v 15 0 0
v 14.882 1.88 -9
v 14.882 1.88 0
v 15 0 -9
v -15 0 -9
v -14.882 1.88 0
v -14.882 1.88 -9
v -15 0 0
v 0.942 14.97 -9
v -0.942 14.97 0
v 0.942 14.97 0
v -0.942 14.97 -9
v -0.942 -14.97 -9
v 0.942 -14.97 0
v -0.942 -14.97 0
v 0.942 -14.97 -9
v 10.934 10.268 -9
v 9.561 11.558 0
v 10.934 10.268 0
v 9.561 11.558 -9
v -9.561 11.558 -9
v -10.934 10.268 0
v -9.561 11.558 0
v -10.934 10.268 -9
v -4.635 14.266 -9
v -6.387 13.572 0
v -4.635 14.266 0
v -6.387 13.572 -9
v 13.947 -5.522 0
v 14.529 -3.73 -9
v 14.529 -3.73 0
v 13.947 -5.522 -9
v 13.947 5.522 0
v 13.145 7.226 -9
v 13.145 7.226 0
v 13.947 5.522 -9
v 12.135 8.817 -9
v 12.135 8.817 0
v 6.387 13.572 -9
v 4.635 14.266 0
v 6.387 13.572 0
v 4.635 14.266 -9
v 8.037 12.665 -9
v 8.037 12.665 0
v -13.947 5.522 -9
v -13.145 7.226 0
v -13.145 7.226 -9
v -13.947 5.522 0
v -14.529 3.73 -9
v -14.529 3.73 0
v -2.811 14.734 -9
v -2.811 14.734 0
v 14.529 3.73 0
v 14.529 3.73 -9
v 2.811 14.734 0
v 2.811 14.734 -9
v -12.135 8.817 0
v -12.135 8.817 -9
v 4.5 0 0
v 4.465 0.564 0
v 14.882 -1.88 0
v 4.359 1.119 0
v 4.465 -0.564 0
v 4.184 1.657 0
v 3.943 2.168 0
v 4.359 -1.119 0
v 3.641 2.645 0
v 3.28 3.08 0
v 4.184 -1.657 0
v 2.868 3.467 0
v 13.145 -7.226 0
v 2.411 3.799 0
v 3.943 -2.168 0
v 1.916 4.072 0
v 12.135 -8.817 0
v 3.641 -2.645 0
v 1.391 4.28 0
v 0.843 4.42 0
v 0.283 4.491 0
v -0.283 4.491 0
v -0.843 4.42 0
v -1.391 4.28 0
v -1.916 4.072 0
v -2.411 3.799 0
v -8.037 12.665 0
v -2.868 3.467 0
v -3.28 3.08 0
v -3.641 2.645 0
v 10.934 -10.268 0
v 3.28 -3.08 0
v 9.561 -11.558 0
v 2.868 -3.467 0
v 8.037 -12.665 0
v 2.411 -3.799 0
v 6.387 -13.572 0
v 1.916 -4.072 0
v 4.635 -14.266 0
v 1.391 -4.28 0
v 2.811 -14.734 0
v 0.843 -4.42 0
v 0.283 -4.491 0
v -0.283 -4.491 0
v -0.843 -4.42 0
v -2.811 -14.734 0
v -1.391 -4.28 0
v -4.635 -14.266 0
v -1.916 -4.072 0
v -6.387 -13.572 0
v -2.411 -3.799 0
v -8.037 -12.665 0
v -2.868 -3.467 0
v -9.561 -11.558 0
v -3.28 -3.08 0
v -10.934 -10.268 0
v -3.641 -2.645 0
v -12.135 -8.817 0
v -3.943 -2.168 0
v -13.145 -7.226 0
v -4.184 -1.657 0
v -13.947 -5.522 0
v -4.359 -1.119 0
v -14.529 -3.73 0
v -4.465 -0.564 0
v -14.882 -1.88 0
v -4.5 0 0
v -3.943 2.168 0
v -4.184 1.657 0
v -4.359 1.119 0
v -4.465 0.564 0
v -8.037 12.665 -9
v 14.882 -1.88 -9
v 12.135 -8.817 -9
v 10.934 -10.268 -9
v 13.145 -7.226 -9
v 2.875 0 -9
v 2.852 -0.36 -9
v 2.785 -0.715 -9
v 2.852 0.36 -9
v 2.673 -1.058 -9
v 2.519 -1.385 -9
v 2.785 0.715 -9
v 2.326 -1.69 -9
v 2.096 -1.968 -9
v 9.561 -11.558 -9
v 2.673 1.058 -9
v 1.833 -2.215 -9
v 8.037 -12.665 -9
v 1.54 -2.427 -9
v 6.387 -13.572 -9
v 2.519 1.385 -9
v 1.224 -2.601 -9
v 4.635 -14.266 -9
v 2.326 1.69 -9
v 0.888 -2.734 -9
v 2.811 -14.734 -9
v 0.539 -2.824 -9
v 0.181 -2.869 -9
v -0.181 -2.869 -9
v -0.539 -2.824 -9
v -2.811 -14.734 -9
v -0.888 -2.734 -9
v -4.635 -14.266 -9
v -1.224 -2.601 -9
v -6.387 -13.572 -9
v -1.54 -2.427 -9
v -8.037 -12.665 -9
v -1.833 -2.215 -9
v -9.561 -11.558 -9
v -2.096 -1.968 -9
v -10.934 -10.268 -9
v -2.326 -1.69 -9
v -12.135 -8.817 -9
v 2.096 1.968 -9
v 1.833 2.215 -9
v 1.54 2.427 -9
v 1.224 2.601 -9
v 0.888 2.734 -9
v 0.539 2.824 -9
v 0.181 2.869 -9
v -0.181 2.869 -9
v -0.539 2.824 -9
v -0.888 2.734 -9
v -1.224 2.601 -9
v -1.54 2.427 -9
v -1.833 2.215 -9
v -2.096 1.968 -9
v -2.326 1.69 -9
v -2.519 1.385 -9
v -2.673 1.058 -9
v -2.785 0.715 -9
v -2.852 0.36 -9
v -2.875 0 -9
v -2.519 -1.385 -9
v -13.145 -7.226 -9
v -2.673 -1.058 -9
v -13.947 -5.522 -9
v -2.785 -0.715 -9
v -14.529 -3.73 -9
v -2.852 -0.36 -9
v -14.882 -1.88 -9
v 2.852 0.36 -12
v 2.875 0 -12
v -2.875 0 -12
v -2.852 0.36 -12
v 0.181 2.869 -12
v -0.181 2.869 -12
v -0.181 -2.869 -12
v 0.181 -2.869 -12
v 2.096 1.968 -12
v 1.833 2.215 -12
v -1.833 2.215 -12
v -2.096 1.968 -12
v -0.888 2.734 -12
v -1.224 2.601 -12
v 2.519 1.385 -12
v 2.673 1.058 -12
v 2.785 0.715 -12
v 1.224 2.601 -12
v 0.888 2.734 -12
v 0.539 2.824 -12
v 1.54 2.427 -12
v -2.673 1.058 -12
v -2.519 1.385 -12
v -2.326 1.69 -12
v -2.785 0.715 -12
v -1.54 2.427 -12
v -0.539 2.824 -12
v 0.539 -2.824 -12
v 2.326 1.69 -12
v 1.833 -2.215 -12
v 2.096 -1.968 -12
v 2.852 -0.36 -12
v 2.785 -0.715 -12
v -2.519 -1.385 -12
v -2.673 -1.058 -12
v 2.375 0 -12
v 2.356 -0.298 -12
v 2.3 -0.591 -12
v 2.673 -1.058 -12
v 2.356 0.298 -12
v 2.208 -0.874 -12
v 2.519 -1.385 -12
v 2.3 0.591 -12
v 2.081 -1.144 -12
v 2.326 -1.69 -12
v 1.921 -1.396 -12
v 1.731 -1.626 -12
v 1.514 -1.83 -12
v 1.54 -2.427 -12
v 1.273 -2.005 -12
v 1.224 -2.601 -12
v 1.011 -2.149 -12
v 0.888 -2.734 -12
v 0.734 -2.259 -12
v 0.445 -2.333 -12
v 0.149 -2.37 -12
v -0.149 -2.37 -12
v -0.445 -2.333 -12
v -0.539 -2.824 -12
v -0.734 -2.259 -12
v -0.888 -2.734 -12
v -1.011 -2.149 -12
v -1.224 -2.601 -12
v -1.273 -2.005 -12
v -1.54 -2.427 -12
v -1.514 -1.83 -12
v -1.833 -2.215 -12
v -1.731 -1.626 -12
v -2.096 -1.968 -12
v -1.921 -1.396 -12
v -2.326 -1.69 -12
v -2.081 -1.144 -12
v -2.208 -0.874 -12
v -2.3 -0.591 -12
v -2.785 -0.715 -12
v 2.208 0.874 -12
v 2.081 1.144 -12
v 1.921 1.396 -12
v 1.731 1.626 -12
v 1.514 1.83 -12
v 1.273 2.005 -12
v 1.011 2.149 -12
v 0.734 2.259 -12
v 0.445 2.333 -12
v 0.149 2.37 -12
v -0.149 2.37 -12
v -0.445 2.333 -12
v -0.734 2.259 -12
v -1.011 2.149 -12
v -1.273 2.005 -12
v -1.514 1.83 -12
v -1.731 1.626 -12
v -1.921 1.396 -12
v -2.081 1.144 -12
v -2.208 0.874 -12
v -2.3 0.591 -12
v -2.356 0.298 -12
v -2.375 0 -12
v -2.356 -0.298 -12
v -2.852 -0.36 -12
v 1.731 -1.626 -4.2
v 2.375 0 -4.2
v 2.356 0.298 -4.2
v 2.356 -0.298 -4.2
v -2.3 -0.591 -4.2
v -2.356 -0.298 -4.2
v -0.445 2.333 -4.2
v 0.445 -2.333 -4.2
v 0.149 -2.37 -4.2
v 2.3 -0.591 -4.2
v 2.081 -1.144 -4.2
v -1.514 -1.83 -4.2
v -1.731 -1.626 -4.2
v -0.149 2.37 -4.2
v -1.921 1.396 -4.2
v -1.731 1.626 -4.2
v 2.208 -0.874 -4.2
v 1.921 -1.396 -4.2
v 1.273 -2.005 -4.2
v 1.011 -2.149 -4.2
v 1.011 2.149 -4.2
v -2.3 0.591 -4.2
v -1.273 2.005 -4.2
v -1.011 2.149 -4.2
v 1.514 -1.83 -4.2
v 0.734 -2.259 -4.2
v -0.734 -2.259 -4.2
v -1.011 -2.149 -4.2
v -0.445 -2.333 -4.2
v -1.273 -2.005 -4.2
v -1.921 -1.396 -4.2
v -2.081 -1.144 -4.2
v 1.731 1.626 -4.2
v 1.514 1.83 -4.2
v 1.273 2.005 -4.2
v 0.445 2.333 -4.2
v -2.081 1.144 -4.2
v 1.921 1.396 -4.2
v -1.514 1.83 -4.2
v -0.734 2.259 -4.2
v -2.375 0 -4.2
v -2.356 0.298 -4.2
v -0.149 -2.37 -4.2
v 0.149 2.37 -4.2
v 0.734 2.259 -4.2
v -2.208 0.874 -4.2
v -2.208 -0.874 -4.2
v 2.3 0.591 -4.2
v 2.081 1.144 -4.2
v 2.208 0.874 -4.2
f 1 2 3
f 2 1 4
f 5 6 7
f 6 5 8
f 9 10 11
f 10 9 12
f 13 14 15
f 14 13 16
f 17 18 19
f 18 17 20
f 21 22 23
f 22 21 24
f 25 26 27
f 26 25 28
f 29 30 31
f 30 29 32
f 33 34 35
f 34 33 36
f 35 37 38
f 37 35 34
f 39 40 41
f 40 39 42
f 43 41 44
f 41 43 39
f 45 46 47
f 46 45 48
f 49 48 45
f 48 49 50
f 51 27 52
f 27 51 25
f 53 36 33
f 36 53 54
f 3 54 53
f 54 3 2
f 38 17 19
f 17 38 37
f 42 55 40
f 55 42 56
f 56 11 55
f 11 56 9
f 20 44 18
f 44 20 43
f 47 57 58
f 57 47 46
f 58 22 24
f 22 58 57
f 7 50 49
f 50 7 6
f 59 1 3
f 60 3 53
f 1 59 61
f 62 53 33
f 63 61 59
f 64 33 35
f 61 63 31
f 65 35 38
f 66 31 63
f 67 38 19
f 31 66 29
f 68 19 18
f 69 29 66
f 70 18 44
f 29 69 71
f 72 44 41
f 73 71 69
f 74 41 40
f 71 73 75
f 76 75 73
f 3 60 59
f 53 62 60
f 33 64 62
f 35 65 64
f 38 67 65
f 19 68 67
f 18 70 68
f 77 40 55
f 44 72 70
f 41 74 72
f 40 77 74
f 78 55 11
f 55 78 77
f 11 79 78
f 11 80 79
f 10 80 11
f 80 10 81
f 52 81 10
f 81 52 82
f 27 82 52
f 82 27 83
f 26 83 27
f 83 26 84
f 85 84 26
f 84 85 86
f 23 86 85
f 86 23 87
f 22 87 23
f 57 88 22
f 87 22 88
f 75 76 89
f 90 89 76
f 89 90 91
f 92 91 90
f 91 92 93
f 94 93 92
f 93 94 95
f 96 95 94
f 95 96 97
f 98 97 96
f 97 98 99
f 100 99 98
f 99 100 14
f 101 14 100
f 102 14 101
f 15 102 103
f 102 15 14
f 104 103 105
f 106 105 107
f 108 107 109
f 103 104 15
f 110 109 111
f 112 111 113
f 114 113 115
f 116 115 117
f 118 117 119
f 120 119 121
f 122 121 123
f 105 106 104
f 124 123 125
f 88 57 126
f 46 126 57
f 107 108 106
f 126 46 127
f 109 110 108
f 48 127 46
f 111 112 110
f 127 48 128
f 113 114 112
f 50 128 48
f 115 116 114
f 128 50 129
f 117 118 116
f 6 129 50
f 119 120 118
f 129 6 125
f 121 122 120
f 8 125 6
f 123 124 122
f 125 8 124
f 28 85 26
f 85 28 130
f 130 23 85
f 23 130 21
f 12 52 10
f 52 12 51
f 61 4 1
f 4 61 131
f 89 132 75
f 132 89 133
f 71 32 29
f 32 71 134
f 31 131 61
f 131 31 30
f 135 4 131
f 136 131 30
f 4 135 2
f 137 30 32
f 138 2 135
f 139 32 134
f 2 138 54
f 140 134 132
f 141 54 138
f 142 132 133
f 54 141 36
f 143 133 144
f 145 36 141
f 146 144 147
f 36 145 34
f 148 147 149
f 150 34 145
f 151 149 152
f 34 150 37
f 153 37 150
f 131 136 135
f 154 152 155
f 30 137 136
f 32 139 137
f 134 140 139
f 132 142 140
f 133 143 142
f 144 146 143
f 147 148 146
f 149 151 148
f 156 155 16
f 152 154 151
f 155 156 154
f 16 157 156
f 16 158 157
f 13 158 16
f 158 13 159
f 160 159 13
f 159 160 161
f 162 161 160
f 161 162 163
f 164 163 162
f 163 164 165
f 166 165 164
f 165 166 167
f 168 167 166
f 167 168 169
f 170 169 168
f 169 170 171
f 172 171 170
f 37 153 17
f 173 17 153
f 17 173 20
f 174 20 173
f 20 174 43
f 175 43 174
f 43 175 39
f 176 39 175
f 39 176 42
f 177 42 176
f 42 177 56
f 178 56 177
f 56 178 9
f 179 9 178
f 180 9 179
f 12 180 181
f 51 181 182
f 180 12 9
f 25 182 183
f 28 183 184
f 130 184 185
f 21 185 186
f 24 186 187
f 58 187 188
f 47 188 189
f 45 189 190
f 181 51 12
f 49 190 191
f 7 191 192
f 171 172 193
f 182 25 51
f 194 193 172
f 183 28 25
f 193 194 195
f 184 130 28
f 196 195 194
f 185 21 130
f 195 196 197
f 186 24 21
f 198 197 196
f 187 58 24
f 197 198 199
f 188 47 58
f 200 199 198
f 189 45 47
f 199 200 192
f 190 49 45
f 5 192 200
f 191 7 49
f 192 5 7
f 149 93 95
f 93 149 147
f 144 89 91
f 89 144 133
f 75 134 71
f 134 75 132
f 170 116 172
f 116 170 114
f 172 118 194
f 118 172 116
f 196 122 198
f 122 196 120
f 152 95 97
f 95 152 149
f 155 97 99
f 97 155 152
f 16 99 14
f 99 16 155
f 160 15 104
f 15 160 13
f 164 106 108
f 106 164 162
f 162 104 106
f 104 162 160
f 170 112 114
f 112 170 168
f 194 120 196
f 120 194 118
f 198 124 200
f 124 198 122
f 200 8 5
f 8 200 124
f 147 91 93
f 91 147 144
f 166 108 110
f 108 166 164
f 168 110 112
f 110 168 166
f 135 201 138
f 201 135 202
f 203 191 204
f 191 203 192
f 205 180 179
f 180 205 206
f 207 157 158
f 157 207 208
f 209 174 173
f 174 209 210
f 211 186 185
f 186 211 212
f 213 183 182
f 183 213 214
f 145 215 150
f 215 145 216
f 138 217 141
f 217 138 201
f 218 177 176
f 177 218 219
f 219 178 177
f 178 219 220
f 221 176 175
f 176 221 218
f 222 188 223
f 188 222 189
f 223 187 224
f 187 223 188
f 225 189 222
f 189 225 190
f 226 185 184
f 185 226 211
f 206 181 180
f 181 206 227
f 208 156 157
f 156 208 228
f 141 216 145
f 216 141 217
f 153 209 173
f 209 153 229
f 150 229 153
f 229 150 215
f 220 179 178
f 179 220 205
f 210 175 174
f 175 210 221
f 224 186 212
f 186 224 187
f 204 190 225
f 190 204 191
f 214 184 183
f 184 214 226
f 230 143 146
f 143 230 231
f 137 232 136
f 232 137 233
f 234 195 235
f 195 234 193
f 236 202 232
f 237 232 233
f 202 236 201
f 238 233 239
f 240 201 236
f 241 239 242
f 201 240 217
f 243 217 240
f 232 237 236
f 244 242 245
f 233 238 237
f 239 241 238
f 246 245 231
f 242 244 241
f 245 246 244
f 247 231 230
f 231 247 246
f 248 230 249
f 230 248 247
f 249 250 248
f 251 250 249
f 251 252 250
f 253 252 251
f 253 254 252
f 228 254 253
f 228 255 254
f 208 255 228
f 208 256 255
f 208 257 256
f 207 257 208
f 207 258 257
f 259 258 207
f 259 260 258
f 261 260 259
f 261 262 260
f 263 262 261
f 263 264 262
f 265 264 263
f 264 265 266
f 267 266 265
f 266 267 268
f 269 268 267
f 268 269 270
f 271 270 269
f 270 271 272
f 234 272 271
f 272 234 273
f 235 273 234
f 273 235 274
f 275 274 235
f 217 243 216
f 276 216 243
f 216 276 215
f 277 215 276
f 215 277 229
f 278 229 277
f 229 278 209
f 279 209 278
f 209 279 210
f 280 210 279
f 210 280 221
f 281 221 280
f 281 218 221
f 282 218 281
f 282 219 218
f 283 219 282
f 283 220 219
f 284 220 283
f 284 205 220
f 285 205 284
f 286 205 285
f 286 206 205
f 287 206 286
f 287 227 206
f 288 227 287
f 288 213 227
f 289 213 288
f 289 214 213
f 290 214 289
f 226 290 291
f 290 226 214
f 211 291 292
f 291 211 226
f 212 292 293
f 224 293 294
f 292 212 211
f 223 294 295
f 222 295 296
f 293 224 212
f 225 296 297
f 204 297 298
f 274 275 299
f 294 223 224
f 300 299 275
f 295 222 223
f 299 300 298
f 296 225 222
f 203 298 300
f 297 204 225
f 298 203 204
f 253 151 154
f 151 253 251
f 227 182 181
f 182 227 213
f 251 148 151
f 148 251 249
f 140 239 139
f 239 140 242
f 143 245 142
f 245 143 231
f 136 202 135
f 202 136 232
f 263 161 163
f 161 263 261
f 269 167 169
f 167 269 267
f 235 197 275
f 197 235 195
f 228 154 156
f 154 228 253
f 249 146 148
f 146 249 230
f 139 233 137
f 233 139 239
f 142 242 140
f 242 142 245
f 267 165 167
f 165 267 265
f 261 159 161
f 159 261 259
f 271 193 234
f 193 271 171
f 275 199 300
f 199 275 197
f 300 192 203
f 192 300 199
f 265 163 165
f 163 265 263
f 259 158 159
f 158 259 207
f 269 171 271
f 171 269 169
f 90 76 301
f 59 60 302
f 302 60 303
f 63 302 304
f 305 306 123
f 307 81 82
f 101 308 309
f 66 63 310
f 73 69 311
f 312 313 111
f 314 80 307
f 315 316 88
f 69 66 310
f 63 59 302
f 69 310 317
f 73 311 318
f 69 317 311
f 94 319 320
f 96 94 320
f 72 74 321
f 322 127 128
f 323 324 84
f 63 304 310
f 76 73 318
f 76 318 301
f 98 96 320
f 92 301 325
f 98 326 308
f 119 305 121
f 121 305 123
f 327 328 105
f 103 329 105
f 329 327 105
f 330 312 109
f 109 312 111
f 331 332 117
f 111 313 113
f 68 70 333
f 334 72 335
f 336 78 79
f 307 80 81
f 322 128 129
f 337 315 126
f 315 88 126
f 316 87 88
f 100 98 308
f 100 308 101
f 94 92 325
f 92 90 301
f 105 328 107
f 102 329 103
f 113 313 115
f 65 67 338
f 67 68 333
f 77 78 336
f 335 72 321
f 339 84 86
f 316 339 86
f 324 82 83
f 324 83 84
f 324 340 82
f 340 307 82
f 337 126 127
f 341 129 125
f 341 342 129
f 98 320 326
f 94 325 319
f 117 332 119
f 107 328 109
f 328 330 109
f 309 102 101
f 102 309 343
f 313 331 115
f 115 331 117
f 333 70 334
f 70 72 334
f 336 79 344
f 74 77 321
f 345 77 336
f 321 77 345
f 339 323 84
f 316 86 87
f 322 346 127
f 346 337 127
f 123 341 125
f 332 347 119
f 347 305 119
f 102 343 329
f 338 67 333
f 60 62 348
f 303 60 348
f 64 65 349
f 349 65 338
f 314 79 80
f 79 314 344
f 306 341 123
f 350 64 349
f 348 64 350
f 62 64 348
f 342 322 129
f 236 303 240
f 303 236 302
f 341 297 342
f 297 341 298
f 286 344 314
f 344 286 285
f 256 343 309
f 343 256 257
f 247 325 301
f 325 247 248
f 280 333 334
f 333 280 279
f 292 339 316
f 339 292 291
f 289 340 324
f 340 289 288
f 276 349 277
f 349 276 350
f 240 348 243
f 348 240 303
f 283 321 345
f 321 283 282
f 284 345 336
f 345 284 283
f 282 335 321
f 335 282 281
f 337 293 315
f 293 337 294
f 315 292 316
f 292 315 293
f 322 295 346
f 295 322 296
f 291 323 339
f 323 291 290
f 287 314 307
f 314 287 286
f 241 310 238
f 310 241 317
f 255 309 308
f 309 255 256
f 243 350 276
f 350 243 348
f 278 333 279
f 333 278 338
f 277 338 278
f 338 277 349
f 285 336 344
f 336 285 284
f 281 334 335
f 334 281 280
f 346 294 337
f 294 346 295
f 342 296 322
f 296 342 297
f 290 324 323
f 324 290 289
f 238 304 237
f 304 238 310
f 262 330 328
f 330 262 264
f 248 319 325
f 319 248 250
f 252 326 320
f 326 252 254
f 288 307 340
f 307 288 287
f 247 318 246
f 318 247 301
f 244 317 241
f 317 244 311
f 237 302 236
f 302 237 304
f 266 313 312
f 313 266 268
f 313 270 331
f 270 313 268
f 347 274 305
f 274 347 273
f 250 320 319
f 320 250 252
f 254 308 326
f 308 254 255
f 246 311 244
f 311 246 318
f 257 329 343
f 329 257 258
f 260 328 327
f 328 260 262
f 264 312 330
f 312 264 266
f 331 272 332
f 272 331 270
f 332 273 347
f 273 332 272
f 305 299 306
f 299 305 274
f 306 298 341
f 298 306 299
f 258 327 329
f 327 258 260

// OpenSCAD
$fn = 50;

difference() {
	union() {
		translate(v = [0, 0, -9.0]) {
			cylinder(h = 9, r = 15.0);
		}
		#translate(v = [0, 0, -12.0]) {
			cylinder(h = 12, r = 2.875);
		}
	}
	union() {
		translate(v = [0, 0, 0]) {
			rotate(a = [0, 0, 0]) {
				difference() {
					union() {
						translate(v = [0, 0, -12.0]) {
							cylinder(h = 12, r = 2.25);
						}
						translate(v = [0, 0, -4.2]) {
							cylinder(h = 4.2, r1 = 2.375, r2 = 4.5);
						}
						translate(v = [0, 0, -12.0]) {
							cylinder(h = 12, r = 2.375);
						}
						translate(v = [0, 0, -12.0]) {
							cylinder(h = 12, r = 2.25);
						}
					}
					union();
				}
			}
		}
	}
}
